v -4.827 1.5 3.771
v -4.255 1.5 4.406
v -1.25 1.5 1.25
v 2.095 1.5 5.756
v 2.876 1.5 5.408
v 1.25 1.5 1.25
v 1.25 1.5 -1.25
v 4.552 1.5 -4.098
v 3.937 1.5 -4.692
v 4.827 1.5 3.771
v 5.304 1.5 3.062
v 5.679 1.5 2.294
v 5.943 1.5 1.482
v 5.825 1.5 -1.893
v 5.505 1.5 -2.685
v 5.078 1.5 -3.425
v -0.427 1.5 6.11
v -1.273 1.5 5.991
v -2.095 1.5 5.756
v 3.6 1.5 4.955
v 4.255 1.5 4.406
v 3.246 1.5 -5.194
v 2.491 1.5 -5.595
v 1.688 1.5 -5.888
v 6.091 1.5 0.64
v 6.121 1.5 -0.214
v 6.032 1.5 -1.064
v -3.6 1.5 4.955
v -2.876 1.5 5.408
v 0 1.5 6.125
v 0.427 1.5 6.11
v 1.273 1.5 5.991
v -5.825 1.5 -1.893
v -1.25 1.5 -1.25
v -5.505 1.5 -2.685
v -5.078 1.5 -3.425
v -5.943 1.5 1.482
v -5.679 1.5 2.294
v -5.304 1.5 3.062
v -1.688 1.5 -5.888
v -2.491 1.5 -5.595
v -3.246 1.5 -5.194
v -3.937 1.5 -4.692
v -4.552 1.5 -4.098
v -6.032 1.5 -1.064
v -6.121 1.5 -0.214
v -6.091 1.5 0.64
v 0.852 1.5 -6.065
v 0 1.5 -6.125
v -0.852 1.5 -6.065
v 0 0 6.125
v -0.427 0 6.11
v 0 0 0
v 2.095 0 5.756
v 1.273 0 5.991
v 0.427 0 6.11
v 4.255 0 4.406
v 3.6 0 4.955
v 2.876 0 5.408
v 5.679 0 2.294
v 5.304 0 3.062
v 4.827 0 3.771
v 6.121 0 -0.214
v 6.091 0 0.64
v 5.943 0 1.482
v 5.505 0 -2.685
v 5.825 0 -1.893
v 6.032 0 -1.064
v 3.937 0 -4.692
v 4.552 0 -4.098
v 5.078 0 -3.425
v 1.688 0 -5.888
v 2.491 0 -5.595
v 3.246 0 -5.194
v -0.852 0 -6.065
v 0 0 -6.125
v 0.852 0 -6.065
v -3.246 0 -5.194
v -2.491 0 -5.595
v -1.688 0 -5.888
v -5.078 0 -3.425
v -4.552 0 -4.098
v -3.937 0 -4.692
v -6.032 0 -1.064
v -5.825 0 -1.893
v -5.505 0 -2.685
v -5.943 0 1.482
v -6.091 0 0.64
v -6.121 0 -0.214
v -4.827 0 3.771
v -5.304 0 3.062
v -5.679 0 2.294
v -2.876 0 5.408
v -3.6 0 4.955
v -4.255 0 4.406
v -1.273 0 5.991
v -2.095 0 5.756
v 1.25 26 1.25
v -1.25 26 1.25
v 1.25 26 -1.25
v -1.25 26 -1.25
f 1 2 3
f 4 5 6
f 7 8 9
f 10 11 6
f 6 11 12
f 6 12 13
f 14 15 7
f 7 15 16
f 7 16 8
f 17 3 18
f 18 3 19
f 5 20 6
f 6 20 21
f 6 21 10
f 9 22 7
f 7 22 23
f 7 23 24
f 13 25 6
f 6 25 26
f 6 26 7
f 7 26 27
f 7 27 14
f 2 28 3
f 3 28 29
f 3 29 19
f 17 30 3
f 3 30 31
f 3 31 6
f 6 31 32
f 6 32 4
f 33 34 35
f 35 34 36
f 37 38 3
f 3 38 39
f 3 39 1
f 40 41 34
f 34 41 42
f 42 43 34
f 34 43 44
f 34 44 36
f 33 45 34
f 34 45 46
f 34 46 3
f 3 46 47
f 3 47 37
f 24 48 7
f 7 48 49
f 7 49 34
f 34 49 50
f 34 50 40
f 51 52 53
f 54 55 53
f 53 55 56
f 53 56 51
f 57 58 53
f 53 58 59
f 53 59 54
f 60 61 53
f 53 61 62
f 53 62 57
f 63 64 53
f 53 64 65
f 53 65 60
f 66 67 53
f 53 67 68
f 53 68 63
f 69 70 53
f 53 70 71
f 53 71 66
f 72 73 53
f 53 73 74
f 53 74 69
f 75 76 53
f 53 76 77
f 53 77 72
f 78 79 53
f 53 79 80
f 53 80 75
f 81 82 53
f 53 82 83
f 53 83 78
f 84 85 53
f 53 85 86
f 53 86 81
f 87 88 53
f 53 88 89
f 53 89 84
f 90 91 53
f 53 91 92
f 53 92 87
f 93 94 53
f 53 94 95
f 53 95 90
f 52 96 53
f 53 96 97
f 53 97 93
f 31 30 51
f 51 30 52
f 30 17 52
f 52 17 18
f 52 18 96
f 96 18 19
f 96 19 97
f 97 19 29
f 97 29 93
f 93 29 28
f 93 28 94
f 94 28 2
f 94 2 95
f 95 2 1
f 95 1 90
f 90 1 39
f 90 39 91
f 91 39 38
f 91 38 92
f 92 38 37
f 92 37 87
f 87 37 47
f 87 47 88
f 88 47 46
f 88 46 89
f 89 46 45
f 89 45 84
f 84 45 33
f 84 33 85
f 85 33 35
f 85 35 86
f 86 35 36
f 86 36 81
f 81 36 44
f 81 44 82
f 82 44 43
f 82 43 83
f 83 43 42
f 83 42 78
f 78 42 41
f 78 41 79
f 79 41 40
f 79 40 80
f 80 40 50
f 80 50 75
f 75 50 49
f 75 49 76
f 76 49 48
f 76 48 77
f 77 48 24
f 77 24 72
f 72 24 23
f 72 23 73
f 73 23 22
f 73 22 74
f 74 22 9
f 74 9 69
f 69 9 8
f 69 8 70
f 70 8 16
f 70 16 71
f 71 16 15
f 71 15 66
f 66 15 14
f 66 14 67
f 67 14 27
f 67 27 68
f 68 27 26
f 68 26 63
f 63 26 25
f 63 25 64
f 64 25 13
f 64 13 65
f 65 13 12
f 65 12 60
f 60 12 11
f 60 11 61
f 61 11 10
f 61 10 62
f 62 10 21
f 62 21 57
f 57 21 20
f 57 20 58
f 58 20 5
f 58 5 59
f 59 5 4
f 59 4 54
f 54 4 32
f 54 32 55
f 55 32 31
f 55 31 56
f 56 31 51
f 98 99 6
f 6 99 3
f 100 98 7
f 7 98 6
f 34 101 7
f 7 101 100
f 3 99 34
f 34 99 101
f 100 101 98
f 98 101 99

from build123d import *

# Parameters (mm, degrees)
SKETCH1_R           = 6.125
SKETCH1_W           = 2.5
SKETCH1_H           = 2.5
BOSS_EXTRUDE1_DEPTH = 1.5
SKETCH1_2_W         = 2.5
SKETCH1_2_H         = 2.5
BOSS_EXTRUDE2_DEPTH = 26


with BuildPart() as part:
    # Sketch1 → Boss-Extrude1 (new body)
    with BuildSketch(Plane(origin=(0, 0, 0), x_dir=(1, 0, 0), z_dir=(0, 1, 0))):
        Circle(SKETCH1_R)
        Rectangle(SKETCH1_W, SKETCH1_H, mode=Mode.SUBTRACT)
    extrude(amount=BOSS_EXTRUDE1_DEPTH)

    # Sketch1<2> → Boss-Extrude2 (add)
    with BuildSketch(Plane(origin=(0, 0, 0), x_dir=(1, 0, 0), z_dir=(0, 1, 0))):
        Rectangle(SKETCH1_2_W, SKETCH1_2_H)
    extrude(amount=BOSS_EXTRUDE2_DEPTH)


solid = part.part
